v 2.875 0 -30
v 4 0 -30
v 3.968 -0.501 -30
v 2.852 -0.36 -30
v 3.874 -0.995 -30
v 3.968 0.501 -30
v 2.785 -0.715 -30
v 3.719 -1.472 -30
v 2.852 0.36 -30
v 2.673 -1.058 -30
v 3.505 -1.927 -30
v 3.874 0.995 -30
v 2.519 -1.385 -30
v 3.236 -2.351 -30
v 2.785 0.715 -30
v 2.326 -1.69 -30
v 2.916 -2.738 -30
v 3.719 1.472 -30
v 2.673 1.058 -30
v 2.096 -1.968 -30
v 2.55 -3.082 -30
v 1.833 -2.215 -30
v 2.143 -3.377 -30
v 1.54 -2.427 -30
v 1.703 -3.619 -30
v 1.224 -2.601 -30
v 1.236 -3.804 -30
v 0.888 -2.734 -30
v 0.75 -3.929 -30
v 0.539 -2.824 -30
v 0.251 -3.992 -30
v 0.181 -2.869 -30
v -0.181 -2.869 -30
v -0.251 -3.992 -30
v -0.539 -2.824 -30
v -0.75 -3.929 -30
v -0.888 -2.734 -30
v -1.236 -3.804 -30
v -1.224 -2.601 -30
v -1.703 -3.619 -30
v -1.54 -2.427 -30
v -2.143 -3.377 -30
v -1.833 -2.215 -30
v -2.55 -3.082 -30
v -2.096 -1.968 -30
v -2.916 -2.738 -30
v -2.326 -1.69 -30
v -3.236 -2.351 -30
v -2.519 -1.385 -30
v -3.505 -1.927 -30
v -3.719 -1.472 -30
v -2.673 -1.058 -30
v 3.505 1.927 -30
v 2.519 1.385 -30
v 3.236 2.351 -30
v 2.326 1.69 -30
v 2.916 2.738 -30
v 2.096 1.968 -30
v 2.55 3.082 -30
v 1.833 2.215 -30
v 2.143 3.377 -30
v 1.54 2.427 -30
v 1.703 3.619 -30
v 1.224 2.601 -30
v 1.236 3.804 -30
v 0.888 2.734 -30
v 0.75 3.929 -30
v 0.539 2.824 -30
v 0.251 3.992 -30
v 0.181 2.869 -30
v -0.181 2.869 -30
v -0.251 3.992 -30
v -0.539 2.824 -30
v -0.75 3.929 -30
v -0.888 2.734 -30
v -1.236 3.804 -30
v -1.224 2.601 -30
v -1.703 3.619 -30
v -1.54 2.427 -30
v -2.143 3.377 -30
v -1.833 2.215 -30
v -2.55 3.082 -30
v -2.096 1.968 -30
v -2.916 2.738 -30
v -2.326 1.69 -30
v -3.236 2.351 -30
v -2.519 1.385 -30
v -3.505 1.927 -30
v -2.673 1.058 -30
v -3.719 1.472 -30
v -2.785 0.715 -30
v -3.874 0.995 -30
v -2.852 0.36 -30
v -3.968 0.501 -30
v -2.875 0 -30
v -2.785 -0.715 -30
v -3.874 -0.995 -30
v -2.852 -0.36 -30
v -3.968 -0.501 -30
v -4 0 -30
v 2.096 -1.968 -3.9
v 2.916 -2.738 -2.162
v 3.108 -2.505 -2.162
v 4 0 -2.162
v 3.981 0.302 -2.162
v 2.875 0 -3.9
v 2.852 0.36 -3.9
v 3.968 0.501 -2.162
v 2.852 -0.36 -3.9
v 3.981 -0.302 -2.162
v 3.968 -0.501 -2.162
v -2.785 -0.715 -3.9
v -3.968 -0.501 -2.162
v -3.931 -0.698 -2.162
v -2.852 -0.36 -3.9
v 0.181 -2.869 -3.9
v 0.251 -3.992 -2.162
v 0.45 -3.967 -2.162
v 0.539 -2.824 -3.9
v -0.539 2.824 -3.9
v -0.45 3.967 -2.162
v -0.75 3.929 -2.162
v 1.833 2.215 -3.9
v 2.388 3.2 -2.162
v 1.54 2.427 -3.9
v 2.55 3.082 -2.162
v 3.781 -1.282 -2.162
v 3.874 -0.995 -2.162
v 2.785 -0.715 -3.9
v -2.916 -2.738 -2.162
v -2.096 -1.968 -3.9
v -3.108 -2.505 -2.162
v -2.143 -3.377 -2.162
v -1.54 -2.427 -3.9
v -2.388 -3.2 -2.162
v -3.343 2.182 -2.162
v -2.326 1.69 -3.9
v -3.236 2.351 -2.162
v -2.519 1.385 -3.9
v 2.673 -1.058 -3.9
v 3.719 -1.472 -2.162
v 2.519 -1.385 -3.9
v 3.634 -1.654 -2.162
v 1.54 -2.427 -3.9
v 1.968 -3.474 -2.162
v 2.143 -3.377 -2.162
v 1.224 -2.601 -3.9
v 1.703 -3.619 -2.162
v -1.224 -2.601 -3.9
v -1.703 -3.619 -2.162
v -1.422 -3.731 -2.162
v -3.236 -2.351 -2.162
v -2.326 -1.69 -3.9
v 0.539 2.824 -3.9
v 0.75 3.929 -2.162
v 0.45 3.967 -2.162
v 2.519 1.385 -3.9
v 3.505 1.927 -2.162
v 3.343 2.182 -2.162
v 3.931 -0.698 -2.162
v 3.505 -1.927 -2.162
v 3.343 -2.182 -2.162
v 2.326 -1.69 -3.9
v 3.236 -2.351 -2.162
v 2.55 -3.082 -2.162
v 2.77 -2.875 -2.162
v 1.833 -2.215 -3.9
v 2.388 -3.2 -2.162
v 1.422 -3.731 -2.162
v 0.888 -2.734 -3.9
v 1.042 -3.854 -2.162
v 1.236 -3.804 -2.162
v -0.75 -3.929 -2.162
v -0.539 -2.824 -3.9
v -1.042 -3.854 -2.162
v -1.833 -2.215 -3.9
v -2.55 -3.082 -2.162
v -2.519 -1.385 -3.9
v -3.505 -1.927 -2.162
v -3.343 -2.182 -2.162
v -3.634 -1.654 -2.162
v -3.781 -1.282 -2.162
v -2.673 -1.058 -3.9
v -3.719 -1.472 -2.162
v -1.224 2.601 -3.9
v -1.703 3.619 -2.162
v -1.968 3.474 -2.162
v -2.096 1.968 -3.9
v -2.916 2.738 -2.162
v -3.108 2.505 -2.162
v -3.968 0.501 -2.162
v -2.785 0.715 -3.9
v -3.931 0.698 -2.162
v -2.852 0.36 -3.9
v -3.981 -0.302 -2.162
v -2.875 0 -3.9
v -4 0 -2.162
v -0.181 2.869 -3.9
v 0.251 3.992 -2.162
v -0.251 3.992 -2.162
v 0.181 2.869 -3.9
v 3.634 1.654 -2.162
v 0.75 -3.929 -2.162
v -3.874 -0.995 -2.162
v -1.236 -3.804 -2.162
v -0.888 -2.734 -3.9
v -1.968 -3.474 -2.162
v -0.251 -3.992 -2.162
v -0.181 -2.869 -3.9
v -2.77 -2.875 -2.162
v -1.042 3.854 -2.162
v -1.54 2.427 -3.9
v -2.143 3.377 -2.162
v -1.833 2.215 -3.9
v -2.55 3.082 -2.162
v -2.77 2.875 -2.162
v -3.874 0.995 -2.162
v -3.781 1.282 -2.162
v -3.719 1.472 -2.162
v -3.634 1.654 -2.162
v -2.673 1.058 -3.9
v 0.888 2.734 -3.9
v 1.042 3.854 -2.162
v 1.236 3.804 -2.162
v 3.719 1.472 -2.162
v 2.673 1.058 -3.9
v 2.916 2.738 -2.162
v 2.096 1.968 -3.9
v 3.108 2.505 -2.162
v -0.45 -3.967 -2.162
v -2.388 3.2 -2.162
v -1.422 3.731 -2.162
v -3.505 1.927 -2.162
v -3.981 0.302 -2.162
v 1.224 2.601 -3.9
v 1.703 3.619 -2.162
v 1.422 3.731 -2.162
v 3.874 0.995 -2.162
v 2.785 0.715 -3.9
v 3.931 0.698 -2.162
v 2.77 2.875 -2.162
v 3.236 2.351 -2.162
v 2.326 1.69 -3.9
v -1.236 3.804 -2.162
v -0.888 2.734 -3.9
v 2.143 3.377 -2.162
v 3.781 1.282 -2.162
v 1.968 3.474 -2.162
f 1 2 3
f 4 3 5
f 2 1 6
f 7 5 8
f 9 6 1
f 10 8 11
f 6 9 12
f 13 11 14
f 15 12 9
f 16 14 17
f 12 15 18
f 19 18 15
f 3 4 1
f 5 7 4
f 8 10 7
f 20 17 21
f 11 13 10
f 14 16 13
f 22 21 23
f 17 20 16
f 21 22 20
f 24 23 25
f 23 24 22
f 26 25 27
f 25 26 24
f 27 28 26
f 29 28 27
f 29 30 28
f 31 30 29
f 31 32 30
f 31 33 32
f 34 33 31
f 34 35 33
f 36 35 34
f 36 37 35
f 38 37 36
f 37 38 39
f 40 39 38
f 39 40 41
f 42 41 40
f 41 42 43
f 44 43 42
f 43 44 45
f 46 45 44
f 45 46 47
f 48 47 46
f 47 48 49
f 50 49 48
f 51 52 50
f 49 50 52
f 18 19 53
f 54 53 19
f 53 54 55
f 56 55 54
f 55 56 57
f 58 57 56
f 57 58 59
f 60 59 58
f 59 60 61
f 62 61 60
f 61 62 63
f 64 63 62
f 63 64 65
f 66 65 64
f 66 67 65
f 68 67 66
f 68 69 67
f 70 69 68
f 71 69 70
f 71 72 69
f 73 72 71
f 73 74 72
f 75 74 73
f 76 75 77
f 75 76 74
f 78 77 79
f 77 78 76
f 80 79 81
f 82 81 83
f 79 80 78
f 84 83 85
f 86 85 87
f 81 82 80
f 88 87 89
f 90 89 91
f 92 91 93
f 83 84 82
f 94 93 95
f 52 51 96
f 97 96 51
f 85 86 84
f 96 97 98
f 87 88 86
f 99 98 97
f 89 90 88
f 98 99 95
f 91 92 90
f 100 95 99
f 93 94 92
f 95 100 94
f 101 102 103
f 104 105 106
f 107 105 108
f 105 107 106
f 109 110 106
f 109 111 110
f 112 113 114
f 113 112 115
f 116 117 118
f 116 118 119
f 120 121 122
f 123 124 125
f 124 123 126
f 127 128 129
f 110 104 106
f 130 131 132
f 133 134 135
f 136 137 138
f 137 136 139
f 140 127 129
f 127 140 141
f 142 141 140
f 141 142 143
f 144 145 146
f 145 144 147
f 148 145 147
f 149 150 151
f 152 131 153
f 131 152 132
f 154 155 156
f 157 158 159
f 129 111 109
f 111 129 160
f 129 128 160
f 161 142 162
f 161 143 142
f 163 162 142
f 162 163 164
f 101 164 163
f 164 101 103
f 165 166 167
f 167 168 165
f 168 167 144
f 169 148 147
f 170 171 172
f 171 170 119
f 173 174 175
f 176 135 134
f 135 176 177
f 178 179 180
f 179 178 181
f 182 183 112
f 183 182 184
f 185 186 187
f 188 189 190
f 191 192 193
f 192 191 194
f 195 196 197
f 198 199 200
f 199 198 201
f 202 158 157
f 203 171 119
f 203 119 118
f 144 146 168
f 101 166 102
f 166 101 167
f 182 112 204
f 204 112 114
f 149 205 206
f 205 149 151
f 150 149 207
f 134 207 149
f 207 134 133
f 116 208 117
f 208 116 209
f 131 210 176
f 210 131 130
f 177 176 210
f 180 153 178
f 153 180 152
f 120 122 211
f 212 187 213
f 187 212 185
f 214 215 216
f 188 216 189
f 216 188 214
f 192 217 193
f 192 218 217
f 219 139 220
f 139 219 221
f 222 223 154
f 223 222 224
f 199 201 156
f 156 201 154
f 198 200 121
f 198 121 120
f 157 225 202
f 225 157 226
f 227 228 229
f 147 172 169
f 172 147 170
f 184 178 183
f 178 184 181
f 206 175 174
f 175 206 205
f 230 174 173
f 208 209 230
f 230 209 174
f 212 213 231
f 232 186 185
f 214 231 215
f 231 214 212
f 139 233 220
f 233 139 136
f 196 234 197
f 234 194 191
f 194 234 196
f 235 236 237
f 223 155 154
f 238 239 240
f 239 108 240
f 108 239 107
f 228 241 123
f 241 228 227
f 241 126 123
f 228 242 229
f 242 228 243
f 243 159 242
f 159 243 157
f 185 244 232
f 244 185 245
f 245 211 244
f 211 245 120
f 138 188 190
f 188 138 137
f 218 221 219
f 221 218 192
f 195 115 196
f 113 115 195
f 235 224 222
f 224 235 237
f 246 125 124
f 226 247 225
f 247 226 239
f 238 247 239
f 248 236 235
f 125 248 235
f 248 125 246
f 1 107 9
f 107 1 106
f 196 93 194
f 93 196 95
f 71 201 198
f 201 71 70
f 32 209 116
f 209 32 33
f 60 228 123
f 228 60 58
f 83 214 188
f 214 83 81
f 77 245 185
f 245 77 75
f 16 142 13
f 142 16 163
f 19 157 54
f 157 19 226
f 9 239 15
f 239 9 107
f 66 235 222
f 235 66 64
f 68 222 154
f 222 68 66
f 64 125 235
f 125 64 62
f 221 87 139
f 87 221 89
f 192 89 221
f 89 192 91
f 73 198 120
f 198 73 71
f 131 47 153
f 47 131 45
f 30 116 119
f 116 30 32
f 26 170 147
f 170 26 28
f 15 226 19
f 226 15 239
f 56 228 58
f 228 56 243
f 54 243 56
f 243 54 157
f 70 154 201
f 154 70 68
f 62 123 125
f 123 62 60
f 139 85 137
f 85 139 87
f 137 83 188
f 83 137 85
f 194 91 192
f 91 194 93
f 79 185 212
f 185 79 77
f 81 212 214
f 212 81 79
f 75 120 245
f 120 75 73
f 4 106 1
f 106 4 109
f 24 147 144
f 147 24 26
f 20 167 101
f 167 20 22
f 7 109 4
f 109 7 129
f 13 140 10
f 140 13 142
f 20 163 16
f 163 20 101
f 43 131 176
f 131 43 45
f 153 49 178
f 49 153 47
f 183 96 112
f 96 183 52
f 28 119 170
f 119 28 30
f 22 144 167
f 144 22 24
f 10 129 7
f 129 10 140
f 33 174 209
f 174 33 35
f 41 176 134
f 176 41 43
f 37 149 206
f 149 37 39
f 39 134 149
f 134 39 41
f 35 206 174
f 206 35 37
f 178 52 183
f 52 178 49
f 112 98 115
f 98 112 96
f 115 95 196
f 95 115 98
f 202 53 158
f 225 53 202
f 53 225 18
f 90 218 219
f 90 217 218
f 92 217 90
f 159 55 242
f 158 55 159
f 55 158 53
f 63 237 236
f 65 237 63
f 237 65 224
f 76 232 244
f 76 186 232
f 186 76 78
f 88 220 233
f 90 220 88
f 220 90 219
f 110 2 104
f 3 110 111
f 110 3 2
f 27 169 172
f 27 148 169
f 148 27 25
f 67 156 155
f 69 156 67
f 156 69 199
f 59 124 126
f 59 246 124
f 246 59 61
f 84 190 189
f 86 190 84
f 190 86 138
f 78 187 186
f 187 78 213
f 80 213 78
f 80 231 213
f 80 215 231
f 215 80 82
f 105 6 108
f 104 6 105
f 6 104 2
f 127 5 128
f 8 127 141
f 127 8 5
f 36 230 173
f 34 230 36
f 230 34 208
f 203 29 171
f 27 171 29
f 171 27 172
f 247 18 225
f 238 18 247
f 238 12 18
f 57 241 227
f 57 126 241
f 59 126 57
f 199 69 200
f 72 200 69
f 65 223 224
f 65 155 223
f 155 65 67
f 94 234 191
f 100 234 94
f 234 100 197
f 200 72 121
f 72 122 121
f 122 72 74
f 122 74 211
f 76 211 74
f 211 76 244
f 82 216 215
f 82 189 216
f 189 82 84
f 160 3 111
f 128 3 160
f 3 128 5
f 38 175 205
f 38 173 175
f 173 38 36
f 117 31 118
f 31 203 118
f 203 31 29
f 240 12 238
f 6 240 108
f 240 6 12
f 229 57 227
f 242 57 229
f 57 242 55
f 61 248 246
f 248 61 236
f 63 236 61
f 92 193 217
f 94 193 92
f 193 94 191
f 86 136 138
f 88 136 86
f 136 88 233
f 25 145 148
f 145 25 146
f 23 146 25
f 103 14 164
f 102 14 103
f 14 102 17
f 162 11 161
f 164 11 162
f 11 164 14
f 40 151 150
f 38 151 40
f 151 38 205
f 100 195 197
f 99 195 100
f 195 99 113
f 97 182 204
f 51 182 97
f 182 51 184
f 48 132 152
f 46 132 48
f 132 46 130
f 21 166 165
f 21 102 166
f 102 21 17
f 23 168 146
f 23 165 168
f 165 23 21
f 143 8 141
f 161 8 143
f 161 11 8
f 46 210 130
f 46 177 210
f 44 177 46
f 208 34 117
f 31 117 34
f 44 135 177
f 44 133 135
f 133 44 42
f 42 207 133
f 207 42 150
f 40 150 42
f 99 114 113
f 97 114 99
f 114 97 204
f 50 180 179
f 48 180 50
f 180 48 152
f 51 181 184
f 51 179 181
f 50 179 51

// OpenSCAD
$fn = 50;


difference() {
	union() {
		translate(v = [0, 0, -30.0000000000]) {
			cylinder(h = 30, r = 4.0000000000);
		}
		cylinder(h = 0, r = 7.0000000000);
	}
	union() {
		translate(v = [0, 0, 0]) {
			rotate(a = [0, 0, 0]) {
				difference() {
					union() {
						#translate(v = [0, 0, -30.0000000000]) {
							cylinder(h = 30, r = 2.6000000000);
						}
						#translate(v = [0, 0, -3.9000000000]) {
							cylinder(h = 3.9000000000, r1 = 2.8750000000, r2 = 5.4000000000);
						}
						#translate(v = [0, 0, -30.0000000000]) {
							cylinder(h = 30, r = 2.8750000000);
						}
						#translate(v = [0, 0, -30.0000000000]) {
							cylinder(h = 30, r = 2.6000000000);
						}
					}
					union();
				}
			}
		}
	}
}
